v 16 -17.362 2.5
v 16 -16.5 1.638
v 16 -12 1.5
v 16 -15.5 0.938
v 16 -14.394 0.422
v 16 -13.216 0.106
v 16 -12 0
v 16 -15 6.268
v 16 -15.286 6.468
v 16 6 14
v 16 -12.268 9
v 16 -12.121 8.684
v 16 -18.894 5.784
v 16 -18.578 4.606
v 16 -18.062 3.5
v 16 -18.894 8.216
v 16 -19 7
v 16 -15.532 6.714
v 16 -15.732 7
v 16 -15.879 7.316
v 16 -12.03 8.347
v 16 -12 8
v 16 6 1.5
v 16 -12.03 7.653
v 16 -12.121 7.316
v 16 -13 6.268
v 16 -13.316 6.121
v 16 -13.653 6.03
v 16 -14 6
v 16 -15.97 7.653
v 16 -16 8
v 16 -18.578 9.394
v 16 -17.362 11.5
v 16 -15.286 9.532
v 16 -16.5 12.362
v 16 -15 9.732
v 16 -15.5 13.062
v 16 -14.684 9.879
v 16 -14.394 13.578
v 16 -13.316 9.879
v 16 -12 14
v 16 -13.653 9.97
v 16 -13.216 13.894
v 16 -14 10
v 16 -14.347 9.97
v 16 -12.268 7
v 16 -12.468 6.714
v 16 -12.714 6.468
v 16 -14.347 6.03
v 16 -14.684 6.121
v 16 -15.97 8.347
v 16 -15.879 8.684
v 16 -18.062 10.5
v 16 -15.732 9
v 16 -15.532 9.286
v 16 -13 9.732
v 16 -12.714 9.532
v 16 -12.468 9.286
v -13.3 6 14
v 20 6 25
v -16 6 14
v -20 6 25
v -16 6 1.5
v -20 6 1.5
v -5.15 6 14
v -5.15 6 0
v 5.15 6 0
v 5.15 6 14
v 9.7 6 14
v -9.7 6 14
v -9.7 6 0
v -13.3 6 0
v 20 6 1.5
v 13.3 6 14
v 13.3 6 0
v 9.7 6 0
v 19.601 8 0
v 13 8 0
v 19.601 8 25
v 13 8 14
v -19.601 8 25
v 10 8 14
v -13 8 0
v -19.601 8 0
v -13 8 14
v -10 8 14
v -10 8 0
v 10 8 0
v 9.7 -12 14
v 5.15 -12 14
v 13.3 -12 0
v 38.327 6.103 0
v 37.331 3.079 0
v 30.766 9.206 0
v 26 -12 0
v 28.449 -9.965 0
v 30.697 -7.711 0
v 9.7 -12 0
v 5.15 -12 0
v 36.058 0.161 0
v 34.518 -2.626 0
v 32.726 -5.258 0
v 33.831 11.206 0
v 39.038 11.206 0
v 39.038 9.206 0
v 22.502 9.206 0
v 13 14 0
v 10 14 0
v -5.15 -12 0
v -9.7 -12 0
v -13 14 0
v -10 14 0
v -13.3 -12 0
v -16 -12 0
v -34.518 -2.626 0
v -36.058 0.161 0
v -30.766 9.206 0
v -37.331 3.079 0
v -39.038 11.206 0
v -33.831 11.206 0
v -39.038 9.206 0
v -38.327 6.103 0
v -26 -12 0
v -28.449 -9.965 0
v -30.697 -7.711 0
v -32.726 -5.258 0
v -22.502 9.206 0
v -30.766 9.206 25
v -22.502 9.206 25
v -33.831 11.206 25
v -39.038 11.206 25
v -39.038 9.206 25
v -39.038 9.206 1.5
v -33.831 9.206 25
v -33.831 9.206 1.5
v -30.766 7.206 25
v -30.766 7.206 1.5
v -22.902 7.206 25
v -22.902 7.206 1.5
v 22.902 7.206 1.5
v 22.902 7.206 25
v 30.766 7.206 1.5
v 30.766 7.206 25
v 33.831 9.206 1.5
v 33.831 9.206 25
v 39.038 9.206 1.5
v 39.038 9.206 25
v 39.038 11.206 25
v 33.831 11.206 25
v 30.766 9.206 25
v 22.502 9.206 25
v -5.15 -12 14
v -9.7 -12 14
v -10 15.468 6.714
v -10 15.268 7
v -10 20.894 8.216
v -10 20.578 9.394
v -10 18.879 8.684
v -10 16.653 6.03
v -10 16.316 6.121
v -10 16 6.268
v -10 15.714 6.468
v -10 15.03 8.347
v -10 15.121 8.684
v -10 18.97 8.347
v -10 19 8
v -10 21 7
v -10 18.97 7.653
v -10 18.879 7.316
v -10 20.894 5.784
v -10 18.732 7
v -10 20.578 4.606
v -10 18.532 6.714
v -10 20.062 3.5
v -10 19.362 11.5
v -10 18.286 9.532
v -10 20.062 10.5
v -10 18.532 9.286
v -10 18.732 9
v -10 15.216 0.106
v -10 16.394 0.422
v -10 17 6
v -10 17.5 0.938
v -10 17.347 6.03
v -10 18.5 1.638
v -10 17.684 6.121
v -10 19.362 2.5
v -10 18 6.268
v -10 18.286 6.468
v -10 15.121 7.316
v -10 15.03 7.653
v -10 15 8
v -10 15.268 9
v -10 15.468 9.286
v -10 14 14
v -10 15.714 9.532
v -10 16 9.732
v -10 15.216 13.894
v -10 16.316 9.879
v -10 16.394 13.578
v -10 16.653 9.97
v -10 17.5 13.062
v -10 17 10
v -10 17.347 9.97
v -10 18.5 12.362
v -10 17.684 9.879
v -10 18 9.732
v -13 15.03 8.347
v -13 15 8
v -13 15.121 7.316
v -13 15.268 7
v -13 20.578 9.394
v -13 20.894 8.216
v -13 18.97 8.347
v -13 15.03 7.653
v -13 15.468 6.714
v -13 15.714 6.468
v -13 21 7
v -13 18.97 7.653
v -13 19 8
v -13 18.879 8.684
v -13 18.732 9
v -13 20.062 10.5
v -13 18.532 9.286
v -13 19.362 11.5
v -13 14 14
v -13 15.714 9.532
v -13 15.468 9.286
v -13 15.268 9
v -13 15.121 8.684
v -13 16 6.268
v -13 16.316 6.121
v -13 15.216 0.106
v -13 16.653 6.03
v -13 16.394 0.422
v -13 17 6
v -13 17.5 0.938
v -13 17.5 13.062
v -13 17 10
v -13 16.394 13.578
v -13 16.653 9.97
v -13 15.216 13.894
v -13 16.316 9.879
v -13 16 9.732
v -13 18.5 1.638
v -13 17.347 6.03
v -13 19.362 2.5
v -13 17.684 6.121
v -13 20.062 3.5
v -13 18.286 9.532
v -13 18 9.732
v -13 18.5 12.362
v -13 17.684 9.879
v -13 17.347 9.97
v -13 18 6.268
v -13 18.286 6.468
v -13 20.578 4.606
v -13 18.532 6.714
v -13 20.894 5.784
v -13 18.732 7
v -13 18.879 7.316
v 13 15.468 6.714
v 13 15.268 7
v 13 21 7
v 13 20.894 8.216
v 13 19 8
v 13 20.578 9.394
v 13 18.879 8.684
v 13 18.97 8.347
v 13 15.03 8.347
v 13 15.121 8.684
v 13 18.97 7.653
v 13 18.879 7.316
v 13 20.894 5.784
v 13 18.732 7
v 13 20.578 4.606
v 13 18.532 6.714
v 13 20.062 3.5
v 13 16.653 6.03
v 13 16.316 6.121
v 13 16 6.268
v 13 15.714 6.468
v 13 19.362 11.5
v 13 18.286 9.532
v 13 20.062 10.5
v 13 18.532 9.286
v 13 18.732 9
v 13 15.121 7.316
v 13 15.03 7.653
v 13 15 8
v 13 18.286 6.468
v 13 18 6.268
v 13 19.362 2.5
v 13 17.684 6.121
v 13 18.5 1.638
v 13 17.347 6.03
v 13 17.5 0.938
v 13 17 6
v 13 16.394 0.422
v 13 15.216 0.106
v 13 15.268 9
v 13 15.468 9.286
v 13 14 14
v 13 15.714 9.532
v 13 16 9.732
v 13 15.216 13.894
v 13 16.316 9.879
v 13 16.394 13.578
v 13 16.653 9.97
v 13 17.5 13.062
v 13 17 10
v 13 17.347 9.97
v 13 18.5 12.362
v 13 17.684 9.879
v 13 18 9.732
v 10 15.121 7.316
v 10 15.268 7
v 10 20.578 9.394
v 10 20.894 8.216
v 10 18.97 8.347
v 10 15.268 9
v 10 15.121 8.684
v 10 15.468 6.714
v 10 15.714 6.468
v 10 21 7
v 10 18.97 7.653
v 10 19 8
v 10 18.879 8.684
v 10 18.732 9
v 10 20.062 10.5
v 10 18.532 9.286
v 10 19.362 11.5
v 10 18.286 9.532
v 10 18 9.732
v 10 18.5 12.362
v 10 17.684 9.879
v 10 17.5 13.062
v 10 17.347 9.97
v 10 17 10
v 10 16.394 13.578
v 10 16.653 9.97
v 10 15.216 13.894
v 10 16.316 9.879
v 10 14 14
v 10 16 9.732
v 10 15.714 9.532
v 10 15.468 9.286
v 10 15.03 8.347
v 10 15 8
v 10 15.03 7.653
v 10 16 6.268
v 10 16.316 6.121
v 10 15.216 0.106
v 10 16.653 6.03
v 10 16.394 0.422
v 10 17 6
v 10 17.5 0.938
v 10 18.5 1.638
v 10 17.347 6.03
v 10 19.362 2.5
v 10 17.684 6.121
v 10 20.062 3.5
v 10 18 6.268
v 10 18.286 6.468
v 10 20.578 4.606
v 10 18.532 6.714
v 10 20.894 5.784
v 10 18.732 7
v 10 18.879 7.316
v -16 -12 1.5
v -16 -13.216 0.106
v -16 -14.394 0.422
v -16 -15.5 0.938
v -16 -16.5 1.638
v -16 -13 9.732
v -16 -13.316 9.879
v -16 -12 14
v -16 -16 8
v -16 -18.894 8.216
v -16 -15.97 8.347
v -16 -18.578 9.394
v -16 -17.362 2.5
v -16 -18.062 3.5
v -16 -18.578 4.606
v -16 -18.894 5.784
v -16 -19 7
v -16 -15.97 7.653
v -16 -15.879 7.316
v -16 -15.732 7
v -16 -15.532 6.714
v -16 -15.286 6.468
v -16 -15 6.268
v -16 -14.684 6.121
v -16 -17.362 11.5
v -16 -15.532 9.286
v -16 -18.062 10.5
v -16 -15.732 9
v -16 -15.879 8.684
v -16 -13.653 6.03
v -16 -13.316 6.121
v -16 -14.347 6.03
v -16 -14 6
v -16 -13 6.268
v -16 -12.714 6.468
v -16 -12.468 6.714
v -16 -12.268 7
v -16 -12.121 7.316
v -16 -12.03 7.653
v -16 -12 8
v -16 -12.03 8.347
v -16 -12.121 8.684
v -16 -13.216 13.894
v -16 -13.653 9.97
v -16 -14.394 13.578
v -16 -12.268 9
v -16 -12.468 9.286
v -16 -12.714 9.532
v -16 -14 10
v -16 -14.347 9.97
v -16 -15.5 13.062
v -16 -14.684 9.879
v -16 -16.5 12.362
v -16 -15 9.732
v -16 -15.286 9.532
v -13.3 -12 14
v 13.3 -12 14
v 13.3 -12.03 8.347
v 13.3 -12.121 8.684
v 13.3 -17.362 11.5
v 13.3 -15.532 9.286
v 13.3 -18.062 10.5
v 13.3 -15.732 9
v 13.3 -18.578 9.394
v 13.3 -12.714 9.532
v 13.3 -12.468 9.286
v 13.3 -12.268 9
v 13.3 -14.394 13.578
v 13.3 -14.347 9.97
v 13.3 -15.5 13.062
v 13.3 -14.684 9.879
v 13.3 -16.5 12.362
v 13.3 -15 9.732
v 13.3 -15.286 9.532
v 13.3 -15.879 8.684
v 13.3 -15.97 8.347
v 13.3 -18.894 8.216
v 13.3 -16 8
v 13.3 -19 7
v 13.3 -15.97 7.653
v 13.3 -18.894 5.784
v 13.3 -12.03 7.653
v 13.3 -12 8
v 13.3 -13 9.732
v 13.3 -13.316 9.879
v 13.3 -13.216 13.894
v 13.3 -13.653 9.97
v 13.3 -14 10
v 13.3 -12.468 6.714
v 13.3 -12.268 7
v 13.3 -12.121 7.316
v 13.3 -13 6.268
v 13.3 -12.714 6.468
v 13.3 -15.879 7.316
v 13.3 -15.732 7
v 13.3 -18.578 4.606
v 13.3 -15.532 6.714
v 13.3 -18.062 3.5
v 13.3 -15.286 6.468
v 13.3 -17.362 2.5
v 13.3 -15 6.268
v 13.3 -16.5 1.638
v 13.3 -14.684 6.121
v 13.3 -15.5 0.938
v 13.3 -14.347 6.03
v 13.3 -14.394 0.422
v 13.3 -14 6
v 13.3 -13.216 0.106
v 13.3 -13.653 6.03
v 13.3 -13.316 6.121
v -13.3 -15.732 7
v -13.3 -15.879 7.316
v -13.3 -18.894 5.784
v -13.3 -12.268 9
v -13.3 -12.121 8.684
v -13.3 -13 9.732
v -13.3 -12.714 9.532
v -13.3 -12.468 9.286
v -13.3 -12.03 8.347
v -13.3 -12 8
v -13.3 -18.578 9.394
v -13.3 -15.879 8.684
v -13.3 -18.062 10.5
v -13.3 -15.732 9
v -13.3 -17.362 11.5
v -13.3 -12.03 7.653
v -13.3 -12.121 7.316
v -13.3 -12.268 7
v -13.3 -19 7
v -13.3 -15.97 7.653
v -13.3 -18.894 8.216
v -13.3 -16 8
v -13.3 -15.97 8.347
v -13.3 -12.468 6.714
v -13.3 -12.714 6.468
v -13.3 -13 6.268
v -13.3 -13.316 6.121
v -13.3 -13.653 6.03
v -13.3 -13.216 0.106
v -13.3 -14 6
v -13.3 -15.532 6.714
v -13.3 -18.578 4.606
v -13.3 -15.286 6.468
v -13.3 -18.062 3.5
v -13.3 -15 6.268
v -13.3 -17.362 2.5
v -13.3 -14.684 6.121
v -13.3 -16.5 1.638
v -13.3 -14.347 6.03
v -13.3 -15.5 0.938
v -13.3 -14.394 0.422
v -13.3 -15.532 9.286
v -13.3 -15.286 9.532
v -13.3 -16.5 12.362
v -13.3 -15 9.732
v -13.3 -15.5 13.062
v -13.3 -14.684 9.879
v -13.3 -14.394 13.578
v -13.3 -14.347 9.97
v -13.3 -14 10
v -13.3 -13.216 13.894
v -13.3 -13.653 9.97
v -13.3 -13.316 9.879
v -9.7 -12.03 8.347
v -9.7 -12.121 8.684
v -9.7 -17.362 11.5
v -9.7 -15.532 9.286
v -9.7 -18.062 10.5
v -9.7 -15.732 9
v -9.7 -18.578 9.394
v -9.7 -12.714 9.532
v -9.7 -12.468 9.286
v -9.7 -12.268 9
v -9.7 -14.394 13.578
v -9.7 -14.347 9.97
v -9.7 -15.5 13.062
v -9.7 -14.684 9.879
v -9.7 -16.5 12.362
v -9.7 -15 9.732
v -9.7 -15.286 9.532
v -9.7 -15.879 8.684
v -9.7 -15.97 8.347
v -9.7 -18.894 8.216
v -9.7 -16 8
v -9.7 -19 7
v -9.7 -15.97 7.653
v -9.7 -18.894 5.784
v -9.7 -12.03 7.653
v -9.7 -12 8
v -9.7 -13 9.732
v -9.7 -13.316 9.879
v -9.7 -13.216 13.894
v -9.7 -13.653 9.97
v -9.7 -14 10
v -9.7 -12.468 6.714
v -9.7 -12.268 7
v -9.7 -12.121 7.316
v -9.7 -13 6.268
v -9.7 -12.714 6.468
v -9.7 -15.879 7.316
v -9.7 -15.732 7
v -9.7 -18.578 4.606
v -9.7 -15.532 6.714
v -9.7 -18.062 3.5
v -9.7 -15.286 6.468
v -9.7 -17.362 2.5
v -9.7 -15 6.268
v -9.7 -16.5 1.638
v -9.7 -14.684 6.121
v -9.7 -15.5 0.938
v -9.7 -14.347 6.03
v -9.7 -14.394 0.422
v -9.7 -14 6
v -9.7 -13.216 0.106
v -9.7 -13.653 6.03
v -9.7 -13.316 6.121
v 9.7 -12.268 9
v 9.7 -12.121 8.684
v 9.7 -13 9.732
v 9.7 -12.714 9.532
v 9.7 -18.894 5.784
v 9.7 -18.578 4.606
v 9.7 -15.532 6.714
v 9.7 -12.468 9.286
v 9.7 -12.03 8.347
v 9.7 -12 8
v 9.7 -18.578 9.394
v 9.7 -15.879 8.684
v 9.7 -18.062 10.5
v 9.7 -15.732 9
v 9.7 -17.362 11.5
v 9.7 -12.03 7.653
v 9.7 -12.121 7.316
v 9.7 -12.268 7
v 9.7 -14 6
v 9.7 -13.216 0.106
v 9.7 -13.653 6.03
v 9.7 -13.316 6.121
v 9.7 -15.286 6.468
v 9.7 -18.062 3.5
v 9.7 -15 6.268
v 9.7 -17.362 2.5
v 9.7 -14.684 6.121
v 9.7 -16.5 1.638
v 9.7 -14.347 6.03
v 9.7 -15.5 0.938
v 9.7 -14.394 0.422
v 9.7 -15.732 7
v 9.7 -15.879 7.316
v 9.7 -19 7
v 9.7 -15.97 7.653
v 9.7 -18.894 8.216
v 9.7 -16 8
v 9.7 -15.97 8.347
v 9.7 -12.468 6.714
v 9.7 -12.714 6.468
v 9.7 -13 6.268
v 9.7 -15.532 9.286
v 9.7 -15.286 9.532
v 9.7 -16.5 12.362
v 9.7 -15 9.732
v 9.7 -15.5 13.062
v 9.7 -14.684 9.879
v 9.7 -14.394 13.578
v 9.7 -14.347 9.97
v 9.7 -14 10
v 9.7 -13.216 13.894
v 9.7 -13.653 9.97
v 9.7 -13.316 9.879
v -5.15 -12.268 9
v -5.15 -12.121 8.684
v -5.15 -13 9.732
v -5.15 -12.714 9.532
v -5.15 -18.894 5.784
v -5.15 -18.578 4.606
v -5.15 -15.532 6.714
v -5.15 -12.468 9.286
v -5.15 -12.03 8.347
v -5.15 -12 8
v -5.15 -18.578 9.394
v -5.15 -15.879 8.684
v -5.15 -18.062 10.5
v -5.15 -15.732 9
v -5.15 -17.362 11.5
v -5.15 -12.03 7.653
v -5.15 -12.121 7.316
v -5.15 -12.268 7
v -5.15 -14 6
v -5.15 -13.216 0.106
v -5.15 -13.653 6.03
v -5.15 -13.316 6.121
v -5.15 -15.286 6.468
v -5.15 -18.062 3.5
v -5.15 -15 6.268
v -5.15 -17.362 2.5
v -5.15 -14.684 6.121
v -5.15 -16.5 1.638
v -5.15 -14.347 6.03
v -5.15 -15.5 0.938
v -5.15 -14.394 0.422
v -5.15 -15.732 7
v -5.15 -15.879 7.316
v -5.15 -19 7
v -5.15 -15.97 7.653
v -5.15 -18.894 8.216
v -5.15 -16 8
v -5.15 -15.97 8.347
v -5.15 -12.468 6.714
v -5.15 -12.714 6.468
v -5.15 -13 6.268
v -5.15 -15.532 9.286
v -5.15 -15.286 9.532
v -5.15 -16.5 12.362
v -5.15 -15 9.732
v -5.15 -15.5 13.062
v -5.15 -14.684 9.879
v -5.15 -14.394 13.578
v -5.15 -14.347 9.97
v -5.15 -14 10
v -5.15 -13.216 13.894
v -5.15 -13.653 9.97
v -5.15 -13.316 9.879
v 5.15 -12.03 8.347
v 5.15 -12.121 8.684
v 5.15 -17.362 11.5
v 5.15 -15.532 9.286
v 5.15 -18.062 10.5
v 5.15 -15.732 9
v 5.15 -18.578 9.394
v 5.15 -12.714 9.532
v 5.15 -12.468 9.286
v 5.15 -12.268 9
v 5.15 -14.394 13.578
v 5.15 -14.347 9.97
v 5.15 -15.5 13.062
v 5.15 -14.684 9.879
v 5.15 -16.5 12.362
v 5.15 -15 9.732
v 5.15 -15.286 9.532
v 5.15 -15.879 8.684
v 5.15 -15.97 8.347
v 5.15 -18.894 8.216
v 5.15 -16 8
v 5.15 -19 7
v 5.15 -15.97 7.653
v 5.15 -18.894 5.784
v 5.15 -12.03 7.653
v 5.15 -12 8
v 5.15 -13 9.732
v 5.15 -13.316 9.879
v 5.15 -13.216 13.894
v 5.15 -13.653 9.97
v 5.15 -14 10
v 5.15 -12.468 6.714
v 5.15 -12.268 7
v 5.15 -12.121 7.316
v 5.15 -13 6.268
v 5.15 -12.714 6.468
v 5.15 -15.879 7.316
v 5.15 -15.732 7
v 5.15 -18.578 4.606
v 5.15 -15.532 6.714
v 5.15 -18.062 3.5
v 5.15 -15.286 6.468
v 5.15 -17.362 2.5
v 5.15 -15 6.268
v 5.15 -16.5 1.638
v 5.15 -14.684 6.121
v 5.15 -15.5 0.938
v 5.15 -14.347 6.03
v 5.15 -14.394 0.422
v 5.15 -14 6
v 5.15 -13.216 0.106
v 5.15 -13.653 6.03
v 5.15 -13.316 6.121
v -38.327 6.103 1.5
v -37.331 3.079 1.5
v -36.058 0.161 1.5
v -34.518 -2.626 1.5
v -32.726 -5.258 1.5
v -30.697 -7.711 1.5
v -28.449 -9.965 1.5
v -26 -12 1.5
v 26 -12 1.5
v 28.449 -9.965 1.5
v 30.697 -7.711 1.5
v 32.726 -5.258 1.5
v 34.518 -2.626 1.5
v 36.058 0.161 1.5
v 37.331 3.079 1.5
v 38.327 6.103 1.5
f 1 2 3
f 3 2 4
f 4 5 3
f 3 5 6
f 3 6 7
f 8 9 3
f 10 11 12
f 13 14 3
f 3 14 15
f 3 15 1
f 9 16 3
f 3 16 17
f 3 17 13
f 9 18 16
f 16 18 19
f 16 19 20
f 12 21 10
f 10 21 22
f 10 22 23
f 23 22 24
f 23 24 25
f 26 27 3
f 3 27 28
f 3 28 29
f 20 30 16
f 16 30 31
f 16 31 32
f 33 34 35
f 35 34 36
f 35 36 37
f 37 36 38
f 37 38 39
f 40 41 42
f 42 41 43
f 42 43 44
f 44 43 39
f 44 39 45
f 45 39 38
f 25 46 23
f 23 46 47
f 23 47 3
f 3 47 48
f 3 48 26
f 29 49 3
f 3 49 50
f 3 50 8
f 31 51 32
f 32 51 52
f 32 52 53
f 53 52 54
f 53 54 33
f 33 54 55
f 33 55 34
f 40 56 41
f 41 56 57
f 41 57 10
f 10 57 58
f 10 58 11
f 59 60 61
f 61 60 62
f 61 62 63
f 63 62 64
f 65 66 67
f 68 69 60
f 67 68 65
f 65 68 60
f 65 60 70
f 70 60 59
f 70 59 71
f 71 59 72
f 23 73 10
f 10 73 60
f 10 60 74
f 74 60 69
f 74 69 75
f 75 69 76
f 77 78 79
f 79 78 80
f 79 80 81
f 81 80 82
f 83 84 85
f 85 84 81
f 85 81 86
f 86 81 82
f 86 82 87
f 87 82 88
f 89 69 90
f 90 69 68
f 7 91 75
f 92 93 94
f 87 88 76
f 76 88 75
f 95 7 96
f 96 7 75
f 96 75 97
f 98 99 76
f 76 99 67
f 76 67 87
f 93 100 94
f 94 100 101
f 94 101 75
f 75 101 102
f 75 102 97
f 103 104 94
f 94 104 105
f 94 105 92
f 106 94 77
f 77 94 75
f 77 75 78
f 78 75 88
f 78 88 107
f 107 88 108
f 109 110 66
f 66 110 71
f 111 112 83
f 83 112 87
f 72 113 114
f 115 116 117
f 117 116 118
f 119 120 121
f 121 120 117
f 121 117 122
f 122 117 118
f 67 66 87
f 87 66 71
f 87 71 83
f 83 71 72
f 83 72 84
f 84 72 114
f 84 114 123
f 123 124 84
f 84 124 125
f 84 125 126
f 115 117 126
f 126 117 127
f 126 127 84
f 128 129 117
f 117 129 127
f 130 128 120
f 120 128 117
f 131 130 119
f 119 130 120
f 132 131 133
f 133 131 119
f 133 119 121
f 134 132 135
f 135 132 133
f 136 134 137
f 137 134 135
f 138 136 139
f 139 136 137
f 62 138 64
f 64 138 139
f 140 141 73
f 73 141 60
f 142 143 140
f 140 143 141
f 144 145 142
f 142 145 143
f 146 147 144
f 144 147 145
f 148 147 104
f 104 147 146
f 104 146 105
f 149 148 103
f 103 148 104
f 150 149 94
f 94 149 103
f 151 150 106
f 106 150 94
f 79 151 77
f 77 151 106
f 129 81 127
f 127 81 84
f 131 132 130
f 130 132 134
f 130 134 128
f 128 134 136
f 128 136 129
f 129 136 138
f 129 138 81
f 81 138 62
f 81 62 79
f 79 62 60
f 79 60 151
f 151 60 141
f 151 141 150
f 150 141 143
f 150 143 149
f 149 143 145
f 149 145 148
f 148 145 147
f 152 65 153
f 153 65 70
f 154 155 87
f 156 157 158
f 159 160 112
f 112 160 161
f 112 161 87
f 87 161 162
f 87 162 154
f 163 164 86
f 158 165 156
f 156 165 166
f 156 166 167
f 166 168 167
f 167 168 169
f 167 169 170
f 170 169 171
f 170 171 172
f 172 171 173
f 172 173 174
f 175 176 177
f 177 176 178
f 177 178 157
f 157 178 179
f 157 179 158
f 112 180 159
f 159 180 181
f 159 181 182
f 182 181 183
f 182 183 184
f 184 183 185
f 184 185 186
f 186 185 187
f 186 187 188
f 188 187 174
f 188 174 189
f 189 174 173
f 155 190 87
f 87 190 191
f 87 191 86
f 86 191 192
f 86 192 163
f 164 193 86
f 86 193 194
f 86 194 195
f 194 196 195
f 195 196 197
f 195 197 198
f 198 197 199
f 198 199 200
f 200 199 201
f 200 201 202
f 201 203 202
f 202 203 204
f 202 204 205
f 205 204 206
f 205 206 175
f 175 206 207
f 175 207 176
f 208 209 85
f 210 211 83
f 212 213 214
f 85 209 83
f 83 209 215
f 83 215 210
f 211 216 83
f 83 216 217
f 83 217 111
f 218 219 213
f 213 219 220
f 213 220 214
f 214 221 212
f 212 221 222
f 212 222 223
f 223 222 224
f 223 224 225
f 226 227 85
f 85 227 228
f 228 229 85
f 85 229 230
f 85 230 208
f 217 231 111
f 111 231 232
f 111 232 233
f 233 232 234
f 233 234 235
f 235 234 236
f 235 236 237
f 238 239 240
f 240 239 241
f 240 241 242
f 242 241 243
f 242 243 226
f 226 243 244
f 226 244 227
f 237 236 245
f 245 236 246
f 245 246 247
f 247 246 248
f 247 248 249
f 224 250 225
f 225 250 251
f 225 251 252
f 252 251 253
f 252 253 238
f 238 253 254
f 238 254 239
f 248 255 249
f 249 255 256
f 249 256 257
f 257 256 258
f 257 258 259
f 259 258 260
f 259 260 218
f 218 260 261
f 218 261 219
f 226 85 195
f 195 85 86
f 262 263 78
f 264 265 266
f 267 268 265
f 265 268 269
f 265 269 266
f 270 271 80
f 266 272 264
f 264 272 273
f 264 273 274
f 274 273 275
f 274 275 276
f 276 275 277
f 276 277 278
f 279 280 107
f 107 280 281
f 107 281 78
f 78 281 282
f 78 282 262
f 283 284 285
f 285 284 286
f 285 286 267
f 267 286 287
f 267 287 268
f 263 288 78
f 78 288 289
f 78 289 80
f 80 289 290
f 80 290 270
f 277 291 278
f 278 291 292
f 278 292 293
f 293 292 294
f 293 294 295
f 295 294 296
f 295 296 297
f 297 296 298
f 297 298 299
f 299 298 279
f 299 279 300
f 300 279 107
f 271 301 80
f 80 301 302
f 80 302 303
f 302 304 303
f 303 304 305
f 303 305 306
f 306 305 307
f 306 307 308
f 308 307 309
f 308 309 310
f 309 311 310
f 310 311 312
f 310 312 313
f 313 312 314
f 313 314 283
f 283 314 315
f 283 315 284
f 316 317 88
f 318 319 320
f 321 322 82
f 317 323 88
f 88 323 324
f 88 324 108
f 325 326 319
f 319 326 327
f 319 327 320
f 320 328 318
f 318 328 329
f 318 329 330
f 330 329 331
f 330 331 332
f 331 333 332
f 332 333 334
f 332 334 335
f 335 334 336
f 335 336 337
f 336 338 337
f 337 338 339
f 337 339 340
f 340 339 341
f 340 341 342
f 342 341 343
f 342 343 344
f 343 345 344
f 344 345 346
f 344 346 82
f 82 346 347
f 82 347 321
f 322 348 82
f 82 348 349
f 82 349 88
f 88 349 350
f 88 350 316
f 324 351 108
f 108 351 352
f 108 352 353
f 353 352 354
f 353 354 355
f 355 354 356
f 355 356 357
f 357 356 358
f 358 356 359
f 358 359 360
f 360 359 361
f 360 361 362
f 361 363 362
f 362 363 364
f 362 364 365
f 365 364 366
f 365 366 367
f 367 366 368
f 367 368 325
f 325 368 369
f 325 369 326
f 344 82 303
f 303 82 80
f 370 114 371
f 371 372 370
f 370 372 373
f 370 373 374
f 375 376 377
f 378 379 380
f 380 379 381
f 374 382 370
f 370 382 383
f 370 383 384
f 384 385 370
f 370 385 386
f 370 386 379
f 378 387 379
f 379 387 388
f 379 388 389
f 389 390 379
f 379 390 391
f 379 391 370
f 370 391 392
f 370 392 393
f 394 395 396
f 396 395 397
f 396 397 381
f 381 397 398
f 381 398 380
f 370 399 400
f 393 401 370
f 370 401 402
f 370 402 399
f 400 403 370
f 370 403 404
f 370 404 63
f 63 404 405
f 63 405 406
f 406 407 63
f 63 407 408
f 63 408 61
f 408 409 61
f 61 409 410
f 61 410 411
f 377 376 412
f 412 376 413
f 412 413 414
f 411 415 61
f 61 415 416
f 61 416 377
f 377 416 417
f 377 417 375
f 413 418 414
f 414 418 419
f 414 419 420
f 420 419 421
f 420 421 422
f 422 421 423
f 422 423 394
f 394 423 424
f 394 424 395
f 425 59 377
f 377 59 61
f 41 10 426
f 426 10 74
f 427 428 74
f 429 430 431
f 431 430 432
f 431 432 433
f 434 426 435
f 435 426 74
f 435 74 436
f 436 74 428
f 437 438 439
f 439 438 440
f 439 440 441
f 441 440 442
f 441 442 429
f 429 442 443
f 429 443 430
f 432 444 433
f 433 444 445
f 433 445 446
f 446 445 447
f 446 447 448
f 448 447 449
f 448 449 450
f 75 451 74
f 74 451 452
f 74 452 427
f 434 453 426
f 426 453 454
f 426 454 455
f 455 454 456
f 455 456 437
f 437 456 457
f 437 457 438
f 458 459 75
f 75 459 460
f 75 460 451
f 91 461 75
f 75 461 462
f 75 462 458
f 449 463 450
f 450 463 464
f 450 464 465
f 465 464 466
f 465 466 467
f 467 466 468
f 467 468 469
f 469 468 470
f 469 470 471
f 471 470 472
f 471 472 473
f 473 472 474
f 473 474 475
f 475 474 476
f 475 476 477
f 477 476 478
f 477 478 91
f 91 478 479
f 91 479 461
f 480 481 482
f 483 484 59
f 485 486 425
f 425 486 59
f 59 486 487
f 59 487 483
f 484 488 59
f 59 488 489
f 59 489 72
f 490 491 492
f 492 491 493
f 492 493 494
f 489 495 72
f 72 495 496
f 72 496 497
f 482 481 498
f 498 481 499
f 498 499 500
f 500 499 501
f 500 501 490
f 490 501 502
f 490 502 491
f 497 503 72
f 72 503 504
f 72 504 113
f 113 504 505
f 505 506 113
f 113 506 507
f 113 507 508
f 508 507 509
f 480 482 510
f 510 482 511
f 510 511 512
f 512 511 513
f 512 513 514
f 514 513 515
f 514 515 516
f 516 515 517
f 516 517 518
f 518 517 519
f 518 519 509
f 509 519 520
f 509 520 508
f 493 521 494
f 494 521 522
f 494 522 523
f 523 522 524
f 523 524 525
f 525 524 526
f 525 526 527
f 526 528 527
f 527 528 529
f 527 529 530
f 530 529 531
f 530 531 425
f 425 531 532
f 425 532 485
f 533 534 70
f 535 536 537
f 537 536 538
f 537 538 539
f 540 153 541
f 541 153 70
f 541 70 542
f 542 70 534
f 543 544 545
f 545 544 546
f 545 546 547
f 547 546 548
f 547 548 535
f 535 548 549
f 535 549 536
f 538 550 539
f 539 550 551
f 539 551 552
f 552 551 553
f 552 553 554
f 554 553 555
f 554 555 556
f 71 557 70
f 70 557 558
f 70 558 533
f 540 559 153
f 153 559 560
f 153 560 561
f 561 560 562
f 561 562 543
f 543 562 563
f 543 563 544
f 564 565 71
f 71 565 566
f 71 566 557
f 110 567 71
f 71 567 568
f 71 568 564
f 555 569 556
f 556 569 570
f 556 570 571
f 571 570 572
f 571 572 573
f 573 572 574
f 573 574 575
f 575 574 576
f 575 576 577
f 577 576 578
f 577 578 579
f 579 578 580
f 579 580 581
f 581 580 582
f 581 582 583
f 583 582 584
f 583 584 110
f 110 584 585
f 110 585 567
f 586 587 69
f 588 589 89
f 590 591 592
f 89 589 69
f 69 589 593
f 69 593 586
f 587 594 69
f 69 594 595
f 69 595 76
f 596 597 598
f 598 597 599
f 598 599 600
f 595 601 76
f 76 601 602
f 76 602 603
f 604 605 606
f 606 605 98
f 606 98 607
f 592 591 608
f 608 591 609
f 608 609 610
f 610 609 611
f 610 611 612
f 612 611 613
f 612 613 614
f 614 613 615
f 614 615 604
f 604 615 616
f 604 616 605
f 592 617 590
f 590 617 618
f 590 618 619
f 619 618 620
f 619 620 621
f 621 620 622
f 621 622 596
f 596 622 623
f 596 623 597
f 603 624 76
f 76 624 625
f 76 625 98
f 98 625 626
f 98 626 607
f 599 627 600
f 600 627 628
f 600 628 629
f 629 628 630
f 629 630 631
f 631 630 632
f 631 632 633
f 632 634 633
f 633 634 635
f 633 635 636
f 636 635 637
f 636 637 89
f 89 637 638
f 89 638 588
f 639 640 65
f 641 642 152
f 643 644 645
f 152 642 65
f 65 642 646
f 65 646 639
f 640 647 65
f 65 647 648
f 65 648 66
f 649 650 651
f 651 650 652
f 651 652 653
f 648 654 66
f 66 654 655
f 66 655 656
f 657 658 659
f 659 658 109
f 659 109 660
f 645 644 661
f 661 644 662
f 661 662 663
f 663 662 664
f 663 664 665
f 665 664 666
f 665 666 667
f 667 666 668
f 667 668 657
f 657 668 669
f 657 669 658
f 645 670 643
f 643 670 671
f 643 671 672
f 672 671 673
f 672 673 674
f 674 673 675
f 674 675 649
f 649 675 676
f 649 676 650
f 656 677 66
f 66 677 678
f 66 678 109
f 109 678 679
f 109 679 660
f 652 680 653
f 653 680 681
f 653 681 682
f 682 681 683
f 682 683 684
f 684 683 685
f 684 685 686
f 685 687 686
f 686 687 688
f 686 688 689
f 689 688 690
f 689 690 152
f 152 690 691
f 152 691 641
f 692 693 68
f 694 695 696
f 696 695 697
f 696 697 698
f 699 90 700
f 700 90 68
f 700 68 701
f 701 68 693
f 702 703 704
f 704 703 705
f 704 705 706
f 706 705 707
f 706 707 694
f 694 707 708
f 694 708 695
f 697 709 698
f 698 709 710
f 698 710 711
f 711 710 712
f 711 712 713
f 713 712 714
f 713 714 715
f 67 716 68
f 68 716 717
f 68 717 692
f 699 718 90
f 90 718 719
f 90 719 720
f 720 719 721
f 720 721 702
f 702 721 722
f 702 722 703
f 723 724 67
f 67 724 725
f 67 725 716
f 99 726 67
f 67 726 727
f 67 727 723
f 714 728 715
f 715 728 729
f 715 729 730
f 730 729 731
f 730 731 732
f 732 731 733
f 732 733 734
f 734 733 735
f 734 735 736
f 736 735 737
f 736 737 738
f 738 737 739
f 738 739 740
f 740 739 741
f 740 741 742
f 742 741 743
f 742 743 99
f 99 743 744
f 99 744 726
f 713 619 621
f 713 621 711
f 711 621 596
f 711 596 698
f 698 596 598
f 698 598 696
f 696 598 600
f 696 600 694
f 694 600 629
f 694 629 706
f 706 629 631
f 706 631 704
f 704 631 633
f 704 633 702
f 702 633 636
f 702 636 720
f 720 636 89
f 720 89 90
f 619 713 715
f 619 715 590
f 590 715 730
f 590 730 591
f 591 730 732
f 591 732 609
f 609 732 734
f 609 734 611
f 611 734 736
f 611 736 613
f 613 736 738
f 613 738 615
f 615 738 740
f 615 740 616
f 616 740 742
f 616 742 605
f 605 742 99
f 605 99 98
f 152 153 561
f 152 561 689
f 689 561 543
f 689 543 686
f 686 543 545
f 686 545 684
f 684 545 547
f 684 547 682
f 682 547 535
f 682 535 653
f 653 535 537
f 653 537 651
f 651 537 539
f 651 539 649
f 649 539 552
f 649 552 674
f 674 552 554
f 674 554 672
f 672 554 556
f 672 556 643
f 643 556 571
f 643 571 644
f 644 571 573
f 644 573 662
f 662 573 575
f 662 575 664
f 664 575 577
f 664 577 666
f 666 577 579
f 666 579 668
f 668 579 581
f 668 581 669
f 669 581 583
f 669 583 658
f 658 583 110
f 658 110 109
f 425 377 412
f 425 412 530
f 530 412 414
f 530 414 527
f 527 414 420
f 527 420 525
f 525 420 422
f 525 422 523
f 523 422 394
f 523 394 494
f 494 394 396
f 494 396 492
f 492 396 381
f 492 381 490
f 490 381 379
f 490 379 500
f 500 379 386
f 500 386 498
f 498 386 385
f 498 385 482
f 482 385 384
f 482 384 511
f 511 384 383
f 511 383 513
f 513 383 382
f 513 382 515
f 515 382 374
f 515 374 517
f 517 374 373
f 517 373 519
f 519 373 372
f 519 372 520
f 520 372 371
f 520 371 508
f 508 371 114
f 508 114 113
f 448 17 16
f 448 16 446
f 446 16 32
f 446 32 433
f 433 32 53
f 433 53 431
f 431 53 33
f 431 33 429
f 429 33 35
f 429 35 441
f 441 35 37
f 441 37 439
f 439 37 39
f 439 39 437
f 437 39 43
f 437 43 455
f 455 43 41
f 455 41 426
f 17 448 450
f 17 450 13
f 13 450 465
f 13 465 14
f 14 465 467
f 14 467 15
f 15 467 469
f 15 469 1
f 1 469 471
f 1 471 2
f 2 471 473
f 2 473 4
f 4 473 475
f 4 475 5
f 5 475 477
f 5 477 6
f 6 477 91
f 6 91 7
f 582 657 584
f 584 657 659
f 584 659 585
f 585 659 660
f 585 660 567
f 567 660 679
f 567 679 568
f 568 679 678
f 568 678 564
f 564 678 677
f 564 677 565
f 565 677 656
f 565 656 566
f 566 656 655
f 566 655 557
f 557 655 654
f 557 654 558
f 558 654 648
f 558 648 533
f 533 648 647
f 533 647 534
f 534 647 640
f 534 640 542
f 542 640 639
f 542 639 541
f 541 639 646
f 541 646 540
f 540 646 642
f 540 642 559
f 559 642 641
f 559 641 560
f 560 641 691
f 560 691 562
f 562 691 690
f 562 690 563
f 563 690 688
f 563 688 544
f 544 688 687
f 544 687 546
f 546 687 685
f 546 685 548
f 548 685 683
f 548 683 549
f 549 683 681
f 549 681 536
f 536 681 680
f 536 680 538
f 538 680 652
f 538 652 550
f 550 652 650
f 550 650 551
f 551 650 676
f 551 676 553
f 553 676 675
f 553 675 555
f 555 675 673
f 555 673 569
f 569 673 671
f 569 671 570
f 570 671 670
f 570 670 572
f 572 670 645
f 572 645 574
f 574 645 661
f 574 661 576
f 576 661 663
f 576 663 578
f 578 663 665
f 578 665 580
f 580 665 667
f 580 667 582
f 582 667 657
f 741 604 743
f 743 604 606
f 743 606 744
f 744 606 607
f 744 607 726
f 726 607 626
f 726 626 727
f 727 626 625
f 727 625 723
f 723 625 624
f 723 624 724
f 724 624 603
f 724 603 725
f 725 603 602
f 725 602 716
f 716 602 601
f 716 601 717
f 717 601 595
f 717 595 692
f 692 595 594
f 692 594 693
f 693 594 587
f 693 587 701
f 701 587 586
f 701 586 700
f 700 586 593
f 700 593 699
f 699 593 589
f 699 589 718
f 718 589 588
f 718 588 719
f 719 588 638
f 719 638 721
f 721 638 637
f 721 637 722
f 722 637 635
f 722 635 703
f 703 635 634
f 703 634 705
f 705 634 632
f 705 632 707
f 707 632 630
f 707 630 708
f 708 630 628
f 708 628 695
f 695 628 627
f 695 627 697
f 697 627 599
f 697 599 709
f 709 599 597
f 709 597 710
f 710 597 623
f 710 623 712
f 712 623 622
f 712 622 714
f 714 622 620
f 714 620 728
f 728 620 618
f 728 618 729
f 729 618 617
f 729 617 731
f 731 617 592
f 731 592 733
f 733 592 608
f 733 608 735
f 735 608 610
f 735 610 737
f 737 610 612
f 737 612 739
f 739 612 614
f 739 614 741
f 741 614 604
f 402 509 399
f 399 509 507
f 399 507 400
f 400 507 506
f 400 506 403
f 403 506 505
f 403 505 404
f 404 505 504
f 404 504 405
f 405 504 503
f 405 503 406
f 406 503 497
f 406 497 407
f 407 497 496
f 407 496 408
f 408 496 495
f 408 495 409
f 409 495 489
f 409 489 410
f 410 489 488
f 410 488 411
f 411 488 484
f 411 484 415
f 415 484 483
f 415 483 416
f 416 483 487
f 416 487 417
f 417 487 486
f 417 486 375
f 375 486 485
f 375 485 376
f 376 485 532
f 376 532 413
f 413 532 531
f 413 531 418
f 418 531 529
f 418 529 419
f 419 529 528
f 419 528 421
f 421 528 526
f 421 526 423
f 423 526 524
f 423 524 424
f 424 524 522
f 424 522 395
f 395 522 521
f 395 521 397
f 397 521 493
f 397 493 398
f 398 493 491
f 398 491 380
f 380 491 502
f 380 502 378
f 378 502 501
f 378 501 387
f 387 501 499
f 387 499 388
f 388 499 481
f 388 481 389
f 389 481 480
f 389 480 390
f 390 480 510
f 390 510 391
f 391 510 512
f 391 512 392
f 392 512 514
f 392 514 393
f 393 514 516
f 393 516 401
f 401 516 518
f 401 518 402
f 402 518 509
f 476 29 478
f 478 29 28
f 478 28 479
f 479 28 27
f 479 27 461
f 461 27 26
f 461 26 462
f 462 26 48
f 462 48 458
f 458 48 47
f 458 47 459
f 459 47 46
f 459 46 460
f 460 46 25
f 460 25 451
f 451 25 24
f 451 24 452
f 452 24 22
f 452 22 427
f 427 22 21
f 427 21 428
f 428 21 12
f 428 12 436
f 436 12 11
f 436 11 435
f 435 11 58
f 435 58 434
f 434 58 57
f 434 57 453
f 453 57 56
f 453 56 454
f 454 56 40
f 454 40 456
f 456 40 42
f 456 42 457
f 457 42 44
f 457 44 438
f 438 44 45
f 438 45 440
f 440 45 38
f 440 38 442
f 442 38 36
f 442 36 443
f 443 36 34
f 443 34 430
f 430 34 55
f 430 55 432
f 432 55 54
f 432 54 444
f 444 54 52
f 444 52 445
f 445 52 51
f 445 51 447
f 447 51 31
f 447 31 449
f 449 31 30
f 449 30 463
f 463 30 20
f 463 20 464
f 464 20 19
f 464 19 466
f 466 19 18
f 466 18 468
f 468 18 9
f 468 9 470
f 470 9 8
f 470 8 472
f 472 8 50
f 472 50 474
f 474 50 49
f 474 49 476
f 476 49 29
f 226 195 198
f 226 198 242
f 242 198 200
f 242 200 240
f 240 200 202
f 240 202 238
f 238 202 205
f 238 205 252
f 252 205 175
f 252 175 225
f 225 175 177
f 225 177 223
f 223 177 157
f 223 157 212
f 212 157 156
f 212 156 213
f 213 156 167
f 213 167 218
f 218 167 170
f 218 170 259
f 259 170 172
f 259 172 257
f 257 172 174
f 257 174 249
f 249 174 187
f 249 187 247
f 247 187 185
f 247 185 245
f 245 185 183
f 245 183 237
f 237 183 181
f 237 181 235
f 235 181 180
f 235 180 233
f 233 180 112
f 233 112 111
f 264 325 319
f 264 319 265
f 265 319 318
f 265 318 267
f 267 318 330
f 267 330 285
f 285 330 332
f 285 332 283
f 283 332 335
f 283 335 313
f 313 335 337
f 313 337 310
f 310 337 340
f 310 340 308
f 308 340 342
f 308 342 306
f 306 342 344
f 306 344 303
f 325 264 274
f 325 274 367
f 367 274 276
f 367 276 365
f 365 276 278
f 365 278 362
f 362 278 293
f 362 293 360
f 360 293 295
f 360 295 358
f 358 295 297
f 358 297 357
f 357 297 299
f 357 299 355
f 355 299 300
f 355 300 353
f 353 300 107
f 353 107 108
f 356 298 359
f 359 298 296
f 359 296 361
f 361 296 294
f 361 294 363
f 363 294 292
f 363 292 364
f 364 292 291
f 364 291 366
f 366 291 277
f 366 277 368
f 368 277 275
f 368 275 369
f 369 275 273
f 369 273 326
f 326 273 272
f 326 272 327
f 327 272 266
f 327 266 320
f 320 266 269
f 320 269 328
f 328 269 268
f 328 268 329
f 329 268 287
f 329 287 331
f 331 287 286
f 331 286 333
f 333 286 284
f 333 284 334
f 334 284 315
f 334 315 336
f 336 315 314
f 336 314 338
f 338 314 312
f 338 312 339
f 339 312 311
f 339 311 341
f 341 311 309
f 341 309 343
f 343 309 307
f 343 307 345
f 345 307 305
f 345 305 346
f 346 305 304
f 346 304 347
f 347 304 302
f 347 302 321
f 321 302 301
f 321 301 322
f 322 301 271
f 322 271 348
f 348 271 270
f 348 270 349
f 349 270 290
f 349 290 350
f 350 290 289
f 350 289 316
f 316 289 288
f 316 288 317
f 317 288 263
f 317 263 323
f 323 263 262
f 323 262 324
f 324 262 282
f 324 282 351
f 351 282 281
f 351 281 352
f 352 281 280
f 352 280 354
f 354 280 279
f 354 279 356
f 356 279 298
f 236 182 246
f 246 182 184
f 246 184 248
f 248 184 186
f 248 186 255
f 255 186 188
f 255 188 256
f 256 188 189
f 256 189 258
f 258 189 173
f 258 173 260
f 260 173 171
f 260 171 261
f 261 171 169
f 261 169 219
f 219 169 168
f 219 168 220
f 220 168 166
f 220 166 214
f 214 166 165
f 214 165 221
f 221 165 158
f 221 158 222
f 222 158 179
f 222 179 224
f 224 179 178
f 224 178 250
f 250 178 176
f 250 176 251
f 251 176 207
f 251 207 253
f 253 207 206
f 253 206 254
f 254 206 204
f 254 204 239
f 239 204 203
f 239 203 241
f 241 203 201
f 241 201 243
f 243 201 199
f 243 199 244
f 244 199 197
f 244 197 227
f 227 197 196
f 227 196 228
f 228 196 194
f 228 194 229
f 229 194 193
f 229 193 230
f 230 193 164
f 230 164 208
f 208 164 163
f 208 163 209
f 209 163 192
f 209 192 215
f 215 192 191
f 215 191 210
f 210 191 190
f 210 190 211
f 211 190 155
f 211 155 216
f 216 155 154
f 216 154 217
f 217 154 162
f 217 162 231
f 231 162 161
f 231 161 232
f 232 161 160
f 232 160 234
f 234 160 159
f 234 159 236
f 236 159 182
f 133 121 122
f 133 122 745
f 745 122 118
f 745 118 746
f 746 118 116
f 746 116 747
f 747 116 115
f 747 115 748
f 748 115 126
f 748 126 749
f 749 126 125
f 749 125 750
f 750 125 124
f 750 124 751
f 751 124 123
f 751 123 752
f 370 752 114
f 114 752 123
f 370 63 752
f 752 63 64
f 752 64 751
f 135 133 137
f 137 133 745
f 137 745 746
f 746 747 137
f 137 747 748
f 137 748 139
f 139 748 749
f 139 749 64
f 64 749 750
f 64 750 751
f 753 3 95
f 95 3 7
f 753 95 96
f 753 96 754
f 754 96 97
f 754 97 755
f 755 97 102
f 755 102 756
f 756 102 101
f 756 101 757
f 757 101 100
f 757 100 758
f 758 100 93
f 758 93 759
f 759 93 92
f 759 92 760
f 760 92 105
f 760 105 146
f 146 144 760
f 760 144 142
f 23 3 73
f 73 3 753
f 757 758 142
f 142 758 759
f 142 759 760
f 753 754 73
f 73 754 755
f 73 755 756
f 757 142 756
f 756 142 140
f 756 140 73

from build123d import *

# Parameters (mm, degrees)
SKETCH2_W                 = 5
SKETCH2_H                 = 25
BOSS_EXTRUDE1_DEPTH       = 14
BOSS_EXTRUDE1_2_DEPTH     = 14
BOSS_EXTRUDE3_DEPTH       = 25
SKETCH5_W                 = 3
SKETCH5_H                 = 13
BOSS_EXTRUDE4_DEPTH       = 14
SKETCH7_W                 = 3
SKETCH7_H                 = 25
BOSS_EXTRUDE5_DEPTH       = 14
SKETCH15_W                = 0.3
SKETCH15_H                = 14
CUT_EXTRUDE2_DEPTH        = 25
SKETCH16_W                = 0.15
SKETCH16_H                = 14
CUT_EXTRUDE3_DEPTH        = 25
FILLET1_R                 = 7
F_4_0MM_DOWEL_HOLE2_D     = 4
FILLET2_R                 = 7
F_4_0MM_DOWEL_HOLE1_D     = 4
F_4_0MM_DOWEL_HOLE1_DEPTH = 26
F_4_0MM_DOWEL_HOLE1_TIP   = 1.201721238
BOSS_EXTRUDE6_DEPTH       = 1.5


with BuildPart() as part:
    # Sketch2 → Boss-Extrude1 (new body)
    with BuildSketch(Plane.XY):
        with Locations((-7.5, -6.5)):
            Rectangle(SKETCH2_W, SKETCH2_H)
    extrude(amount=BOSS_EXTRUDE1_DEPTH)



with BuildPart() as body_2:
    # Sketch2 → Boss-Extrude1 2 (new body)
    with BuildSketch(Plane.XY):
        with Locations((7.5, -6.5)):
            Rectangle(SKETCH2_W, SKETCH2_H)
    extrude(amount=BOSS_EXTRUDE1_2_DEPTH)


with BuildPart() as part_1:
    add(part.part)

    add(body_2.part)  # Boss-Extrude3 merges body 2
    # Sketch4 → Boss-Extrude3 (add)
    with BuildSketch(Plane.XY):
        Polygon((-26, 9.206366686), (-30.765993712, 9.206366686), (-33.831204342, 11.206366686), (-39.037863495, 11.206366686), (-39.037863495, 9.206366686), (-33.831204342, 9.206366686), (-30.765993712, 7.206366686), (-26, 7.206366686), align=None)
        Polygon((22.901603942, 7.206366686), (26, 7.206366686), (26, 9.206366686), (22.502408858, 9.206366686), (19.600804916, 8), (10, 8), (-10, 8), (-19.600804916, 8), (-22.502408858, 9.206366686), (-26, 9.206366686), (-26, 7.206366686), (-22.901603942, 7.206366686), (-20, 6), (-10, 6), (10, 6), (20, 6), align=None)
        Polygon((26, 7.206366686), (26, 9.206366686), (30.765993712, 9.206366686), (33.831204342, 11.206366686), (39.037863495, 11.206366686), (39.037863495, 9.206366686), (33.831204342, 9.206366686), (30.765993712, 7.206366686), align=None)
    extrude(amount=BOSS_EXTRUDE3_DEPTH)

    # Sketch5 → Boss-Extrude4 (add)
    with BuildSketch(Plane.XY):
        with Locations((-11.5, 14.5)):
            Rectangle(SKETCH5_W, SKETCH5_H)
        with Locations((11.5, 14.5)):
            Rectangle(SKETCH5_W, SKETCH5_H)
    extrude(amount=BOSS_EXTRUDE4_DEPTH)

    # Sketch7 → Boss-Extrude5 (add)
    with BuildSketch(Plane.XY):
        with Locations((-14.5, -6.5)):
            Rectangle(SKETCH7_W, SKETCH7_H)
        with Locations((14.5, -6.5)):
            Rectangle(SKETCH7_W, SKETCH7_H)
    extrude(amount=BOSS_EXTRUDE5_DEPTH)

    # Sketch15 → Cut-Extrude2 (cut)
    with BuildSketch(Plane.XZ.offset(19)):
        with Locations((-9.85, 7)):
            Rectangle(SKETCH15_W, SKETCH15_H)
        with Locations((9.85, 7)):
            Rectangle(SKETCH15_W, SKETCH15_H)
        with Locations((-13.15, 7)):
            Rectangle(SKETCH15_W, SKETCH15_H)
        with Locations((13.15, 7)):
            Rectangle(SKETCH15_W, SKETCH15_H)
    extrude(amount=-CUT_EXTRUDE2_DEPTH, mode=Mode.SUBTRACT)

    # Sketch16 → Cut-Extrude3 (cut)
    with BuildSketch(Plane.XZ.offset(19)):
        with Locations((-5.075, 7)):
            Rectangle(SKETCH16_W, SKETCH16_H)
        with Locations((5.075, 7)):
            Rectangle(SKETCH16_W, SKETCH16_H)
    extrude(amount=-CUT_EXTRUDE3_DEPTH, mode=Mode.SUBTRACT)

    # Fillet1
    fillet1_edges = [part_1.edges().sort_by_distance(p)[0] for p in [
        (7.425, -19, 0),
        (7.425, -19, 14),
        (-7.425, -19, 0),
        (-7.425, -19, 14),
        (-14.65, -19, 0),
        (-14.65, -19, 14),
        (14.65, -19, 14),
        (14.65, -19, 0),
    ]]
    fillet(fillet1_edges, radius=FILLET1_R - 0.0001)  # a hair under: the kernel refuses the full size

    # Ø4.0mm Dowel Hole2 (through all)
    with Locations(Plane(origin=(16, 0, 0), x_dir=(0, 0, -1), z_dir=(1, 0, 0))):
        with Locations((-8, -14)):
            Hole(F_4_0MM_DOWEL_HOLE2_D / 2)

    # Fillet2
    fillet2_edges = [part_1.edges().sort_by_distance(p)[0] for p in [
        (-11.5, 21, 0),
        (-11.5, 21, 14),
        (11.5, 21, 0),
        (11.5, 21, 14),
    ]]
    fillet(fillet2_edges, radius=FILLET2_R - 0.0001)  # a hair under: the kernel refuses the full size

    # Ø4.0mm Dowel Hole1
    with Locations(Plane(origin=(13, 0, 0), x_dir=(0, 0, -1), z_dir=(1, 0, 0))):
        with Locations((-8, 17)):
            Hole(F_4_0MM_DOWEL_HOLE1_D / 2, depth=F_4_0MM_DOWEL_HOLE1_DEPTH)
            with Locations((0, 0, -(F_4_0MM_DOWEL_HOLE1_DEPTH + F_4_0MM_DOWEL_HOLE1_TIP / 2))):  # 118° drill point
                Cone(0, F_4_0MM_DOWEL_HOLE1_D / 2, F_4_0MM_DOWEL_HOLE1_TIP, mode=Mode.SUBTRACT)

    # Sketch14 → Boss-Extrude6 (add)
    with BuildSketch(Plane.XY):
        with BuildLine():
            Line((-22.901603942, 7.206366686), (-30.765993712, 7.206366686))
            Line((-30.765993712, 7.206366686), (-33.831204342, 9.206366686))
            Line((-33.831204342, 9.206366686), (-39.037863495, 9.206366686))
            ThreePointArc((-39.037863495, 9.206366686), (-34.518223809, -2.625999259), (-26, -12))
            Line((-26, -12), (-16, -12))
            Line((-16, -12), (-16, 6))
            Line((-16, 6), (-20, 6))
            Line((-20, 6), (-22.901603942, 7.206366686))
        make_face()
        with BuildLine():
            Line((20, 6), (16, 6))
            Line((16, 6), (16, -12))
            Line((16, -12), (26, -12))
            ThreePointArc((26, -12), (34.518223809, -2.625999259), (39.037863495, 9.206366686))
            Line((39.037863495, 9.206366686), (33.831204342, 9.206366686))
            Line((33.831204342, 9.206366686), (30.765993712, 7.206366686))
            Line((30.765993712, 7.206366686), (22.901603942, 7.206366686))
            Line((22.901603942, 7.206366686), (20, 6))
        make_face()
    extrude(amount=BOSS_EXTRUDE6_DEPTH)


solid = part_1.part
